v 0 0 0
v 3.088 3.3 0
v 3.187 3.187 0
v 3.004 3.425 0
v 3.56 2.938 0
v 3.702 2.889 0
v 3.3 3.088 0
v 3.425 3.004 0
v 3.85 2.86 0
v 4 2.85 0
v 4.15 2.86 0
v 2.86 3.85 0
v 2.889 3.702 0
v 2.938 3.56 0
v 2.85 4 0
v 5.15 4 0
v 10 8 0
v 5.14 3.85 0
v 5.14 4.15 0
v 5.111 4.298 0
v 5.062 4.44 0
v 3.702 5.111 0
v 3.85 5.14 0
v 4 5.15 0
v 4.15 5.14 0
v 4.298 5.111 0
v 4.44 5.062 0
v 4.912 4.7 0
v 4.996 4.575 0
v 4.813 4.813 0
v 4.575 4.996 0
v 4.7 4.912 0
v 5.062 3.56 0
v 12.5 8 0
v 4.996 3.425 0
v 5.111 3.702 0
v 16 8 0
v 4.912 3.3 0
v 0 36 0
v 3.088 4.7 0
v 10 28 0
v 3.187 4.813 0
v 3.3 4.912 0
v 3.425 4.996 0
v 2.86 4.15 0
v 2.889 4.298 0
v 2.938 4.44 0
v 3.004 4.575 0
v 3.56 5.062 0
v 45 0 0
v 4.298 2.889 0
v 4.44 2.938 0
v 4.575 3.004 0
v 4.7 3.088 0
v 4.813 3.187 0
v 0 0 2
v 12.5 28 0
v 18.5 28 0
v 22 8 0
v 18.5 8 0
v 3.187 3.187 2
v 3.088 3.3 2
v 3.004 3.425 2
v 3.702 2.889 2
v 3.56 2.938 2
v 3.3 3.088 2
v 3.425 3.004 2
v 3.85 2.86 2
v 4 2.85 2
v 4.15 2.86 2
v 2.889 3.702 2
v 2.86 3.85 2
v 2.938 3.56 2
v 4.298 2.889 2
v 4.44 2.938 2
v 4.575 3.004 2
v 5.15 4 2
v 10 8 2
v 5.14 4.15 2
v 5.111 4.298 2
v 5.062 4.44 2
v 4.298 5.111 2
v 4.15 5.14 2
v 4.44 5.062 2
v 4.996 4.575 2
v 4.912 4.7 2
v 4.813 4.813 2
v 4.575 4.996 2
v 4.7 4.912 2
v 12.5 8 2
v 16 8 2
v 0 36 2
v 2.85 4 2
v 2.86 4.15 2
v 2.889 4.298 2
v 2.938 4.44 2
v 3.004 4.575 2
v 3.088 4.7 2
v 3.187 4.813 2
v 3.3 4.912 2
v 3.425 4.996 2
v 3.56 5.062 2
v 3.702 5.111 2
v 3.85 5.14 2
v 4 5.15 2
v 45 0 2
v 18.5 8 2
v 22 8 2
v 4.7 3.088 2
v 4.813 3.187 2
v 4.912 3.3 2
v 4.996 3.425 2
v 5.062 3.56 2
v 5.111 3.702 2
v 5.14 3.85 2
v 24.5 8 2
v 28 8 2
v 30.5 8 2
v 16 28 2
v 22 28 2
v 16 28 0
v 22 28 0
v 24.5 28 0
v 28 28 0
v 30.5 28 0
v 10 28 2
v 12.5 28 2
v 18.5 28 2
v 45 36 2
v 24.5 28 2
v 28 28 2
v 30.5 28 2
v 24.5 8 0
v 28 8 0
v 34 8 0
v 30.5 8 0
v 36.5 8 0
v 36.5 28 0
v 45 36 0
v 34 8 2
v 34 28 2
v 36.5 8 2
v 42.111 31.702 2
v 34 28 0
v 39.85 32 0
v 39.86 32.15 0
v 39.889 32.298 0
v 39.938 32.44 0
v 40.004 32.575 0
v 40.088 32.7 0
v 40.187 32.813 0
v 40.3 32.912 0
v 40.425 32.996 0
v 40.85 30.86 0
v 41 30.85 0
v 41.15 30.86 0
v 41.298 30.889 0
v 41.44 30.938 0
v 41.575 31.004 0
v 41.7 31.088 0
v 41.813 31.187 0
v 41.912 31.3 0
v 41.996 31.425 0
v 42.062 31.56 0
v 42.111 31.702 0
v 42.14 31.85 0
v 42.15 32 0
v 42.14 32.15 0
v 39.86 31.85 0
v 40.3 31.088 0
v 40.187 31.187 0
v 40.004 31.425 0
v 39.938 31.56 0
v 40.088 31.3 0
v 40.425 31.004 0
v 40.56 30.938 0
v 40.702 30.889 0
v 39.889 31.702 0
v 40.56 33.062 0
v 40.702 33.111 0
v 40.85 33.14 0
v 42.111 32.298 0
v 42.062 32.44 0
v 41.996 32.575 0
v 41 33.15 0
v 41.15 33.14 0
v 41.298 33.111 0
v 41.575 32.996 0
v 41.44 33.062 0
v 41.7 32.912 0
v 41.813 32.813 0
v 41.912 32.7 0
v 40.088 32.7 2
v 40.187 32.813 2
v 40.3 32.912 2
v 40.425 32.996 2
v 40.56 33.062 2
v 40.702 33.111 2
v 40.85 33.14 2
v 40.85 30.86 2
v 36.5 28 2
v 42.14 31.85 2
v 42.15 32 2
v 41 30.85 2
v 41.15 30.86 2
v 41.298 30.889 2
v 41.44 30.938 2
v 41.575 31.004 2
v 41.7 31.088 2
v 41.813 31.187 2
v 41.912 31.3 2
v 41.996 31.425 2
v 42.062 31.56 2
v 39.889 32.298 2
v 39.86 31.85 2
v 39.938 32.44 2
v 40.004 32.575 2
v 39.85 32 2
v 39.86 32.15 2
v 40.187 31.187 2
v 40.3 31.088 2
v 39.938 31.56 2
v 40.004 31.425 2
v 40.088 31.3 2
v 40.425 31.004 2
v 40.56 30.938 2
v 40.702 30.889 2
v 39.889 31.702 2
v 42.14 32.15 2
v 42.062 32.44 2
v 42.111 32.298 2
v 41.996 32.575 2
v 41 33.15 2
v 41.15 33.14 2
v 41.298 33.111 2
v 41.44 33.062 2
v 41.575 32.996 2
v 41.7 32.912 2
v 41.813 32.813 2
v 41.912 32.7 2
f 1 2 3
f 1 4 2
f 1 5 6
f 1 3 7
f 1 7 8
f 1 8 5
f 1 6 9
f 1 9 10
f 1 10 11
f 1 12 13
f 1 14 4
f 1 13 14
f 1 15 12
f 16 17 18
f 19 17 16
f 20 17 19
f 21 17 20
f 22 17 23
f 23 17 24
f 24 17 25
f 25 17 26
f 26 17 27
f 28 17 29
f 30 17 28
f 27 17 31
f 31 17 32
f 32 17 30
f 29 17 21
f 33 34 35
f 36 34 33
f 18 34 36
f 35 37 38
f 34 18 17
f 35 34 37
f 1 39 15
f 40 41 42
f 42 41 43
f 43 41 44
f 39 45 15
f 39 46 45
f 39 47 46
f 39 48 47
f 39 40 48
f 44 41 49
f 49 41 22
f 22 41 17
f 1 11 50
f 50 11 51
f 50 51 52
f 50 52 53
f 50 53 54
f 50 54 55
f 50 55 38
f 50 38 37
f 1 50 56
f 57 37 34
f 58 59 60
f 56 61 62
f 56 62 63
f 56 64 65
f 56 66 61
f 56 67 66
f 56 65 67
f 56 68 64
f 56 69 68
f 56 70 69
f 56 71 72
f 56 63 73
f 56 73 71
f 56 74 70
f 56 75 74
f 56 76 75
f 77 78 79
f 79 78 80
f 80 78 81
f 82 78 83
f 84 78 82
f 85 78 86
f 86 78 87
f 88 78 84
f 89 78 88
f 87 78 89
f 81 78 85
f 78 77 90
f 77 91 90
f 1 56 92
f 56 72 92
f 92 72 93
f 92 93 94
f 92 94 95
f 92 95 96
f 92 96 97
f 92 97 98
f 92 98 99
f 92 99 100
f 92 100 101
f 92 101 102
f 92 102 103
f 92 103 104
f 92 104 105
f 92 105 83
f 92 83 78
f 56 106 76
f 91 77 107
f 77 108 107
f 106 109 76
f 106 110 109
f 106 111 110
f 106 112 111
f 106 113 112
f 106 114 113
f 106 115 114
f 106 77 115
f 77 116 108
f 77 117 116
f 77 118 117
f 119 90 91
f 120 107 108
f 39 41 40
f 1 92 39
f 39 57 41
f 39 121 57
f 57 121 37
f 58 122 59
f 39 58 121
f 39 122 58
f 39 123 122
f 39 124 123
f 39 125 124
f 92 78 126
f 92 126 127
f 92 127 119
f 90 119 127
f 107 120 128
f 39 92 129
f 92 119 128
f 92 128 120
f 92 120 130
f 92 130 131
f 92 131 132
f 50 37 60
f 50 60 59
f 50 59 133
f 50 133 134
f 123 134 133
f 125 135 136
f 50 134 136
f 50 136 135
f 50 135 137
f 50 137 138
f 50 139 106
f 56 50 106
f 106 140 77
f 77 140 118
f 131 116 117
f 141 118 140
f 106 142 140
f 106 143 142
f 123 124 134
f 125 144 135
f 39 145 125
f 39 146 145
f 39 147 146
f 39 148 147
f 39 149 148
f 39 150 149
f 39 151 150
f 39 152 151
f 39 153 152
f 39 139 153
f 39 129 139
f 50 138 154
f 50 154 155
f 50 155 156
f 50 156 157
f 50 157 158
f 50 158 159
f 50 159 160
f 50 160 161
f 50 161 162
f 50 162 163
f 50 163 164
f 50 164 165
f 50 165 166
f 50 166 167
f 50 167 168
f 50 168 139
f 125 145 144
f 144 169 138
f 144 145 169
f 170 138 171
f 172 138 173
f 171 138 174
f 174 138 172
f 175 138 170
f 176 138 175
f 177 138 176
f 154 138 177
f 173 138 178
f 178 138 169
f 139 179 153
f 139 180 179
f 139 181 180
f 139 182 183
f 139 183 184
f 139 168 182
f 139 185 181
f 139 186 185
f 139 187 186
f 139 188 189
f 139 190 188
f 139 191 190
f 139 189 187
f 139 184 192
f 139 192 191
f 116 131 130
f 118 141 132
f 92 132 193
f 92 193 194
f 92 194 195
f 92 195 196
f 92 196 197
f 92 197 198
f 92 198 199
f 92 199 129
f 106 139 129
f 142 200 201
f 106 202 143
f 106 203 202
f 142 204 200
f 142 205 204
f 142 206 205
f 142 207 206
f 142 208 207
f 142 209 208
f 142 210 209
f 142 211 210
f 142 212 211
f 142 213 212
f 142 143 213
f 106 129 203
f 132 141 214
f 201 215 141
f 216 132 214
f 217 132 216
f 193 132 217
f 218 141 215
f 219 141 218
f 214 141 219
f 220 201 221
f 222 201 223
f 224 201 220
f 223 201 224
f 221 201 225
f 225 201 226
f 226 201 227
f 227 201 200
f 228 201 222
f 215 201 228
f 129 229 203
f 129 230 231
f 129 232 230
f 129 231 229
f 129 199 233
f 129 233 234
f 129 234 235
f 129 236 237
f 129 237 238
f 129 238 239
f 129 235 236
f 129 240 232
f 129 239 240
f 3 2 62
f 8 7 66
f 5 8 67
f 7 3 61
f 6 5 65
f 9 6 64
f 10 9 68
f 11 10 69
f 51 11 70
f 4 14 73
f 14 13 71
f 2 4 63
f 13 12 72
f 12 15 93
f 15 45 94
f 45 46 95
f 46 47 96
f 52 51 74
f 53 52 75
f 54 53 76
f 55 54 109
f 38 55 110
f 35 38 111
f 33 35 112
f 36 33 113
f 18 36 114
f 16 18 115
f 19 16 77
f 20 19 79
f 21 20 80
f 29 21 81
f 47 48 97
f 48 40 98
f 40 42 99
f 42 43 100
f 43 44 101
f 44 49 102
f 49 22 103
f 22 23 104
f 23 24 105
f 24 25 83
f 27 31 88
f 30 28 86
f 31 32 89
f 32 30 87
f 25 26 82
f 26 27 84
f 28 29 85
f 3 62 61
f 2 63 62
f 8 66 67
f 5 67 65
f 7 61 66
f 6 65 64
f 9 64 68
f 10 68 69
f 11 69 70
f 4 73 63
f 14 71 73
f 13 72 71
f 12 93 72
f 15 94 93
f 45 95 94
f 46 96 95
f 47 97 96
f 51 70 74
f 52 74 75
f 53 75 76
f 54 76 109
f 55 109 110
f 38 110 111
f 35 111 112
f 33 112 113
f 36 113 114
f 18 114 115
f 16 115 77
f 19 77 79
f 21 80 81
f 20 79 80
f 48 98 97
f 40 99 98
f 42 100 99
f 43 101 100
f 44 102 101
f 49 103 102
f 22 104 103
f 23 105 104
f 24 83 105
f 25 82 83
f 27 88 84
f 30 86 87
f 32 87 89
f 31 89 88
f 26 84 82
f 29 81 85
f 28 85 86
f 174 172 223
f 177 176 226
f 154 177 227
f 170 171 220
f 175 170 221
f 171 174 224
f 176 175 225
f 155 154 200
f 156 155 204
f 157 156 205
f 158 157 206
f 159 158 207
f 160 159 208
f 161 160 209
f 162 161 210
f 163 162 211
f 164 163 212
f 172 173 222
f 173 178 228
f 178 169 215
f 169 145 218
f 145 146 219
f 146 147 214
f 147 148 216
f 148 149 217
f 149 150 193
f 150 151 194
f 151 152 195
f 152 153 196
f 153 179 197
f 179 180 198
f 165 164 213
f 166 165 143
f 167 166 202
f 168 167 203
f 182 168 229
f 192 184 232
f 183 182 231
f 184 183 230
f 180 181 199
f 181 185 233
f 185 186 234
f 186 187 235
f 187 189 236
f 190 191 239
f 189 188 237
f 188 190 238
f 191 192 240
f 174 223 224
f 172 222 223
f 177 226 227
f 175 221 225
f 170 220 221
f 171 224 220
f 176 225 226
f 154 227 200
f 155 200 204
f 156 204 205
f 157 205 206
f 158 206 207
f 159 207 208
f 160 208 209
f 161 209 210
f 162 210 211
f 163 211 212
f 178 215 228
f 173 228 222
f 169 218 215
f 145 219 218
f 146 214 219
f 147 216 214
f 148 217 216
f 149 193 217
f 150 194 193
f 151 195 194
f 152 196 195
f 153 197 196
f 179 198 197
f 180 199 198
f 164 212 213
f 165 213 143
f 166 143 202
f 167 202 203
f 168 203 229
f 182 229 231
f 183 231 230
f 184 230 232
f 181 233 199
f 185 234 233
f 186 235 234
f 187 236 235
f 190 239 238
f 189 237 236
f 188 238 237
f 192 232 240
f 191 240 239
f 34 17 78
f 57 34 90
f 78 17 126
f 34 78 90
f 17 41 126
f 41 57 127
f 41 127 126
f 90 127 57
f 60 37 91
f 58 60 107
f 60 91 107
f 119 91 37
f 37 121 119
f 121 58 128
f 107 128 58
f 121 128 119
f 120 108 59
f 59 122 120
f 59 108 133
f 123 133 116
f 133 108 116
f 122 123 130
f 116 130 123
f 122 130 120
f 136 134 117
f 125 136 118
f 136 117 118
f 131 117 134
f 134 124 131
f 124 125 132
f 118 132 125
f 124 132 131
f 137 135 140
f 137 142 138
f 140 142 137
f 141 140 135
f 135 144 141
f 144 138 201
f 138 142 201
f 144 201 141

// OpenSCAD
// Generated from parameters.json by build.py. Edit parameters.json, then rebuild.
// CSG and STL share the same source. See docs/enclosure.md. Units mm.
difference() {
cube([45.0,36.0,2.0]);
translate([4, 4, -0.02]) { cylinder(d=2.3,h=2.04,$fn=48); }
translate([41.0, 32.0, -0.02]) { cylinder(d=2.3,h=2.04,$fn=48); }
translate([10, 8, -0.02]) { cube([2.5,20.0,2.04]); }
translate([16, 8, -0.02]) { cube([2.5,20.0,2.04]); }
translate([22, 8, -0.02]) { cube([2.5,20.0,2.04]); }
translate([28, 8, -0.02]) { cube([2.5,20.0,2.04]); }
translate([34, 8, -0.02]) { cube([2.5,20.0,2.04]); }
}
